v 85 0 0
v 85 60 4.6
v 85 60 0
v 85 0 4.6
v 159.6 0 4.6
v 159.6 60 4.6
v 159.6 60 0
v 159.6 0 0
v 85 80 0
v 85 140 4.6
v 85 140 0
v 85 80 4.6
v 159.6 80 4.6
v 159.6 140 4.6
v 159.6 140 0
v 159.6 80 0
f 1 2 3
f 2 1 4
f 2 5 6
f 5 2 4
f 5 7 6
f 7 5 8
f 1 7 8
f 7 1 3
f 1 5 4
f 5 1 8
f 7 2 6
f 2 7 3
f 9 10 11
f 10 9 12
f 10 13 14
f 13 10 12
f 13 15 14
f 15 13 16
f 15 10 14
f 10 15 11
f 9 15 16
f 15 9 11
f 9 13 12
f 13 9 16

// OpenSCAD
length = 170;
width = 80;
trayHeigth = 20;
wallthickness= 5;
towerheight = 170;
diceOutHeight = 40;

edgelength = 40;

    
    
    //2nd edge
    translate([width+5,0,0])
    rotate([0,0,0])
    cube([width-wallthickness-0.4,width-edgelength+20,wallthickness-0.4]);
    
     //2nd edge
    translate([width+5,width,0])
    rotate([0,0,0])
    cube([width-wallthickness-0.4,width-edgelength+20,wallthickness-0.4]);
